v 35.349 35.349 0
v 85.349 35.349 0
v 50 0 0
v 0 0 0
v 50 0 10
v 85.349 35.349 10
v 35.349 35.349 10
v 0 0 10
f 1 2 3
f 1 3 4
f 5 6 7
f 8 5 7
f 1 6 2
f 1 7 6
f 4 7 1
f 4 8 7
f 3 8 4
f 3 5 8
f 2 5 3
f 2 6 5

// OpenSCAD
$fn=256;linear_extrude(height = 10) {
	scale(v = 50) {
		polygon(points = [[0, 0], [1, 0], [1.707, 0.707], [0.707, 0.707]]);
	}
}
